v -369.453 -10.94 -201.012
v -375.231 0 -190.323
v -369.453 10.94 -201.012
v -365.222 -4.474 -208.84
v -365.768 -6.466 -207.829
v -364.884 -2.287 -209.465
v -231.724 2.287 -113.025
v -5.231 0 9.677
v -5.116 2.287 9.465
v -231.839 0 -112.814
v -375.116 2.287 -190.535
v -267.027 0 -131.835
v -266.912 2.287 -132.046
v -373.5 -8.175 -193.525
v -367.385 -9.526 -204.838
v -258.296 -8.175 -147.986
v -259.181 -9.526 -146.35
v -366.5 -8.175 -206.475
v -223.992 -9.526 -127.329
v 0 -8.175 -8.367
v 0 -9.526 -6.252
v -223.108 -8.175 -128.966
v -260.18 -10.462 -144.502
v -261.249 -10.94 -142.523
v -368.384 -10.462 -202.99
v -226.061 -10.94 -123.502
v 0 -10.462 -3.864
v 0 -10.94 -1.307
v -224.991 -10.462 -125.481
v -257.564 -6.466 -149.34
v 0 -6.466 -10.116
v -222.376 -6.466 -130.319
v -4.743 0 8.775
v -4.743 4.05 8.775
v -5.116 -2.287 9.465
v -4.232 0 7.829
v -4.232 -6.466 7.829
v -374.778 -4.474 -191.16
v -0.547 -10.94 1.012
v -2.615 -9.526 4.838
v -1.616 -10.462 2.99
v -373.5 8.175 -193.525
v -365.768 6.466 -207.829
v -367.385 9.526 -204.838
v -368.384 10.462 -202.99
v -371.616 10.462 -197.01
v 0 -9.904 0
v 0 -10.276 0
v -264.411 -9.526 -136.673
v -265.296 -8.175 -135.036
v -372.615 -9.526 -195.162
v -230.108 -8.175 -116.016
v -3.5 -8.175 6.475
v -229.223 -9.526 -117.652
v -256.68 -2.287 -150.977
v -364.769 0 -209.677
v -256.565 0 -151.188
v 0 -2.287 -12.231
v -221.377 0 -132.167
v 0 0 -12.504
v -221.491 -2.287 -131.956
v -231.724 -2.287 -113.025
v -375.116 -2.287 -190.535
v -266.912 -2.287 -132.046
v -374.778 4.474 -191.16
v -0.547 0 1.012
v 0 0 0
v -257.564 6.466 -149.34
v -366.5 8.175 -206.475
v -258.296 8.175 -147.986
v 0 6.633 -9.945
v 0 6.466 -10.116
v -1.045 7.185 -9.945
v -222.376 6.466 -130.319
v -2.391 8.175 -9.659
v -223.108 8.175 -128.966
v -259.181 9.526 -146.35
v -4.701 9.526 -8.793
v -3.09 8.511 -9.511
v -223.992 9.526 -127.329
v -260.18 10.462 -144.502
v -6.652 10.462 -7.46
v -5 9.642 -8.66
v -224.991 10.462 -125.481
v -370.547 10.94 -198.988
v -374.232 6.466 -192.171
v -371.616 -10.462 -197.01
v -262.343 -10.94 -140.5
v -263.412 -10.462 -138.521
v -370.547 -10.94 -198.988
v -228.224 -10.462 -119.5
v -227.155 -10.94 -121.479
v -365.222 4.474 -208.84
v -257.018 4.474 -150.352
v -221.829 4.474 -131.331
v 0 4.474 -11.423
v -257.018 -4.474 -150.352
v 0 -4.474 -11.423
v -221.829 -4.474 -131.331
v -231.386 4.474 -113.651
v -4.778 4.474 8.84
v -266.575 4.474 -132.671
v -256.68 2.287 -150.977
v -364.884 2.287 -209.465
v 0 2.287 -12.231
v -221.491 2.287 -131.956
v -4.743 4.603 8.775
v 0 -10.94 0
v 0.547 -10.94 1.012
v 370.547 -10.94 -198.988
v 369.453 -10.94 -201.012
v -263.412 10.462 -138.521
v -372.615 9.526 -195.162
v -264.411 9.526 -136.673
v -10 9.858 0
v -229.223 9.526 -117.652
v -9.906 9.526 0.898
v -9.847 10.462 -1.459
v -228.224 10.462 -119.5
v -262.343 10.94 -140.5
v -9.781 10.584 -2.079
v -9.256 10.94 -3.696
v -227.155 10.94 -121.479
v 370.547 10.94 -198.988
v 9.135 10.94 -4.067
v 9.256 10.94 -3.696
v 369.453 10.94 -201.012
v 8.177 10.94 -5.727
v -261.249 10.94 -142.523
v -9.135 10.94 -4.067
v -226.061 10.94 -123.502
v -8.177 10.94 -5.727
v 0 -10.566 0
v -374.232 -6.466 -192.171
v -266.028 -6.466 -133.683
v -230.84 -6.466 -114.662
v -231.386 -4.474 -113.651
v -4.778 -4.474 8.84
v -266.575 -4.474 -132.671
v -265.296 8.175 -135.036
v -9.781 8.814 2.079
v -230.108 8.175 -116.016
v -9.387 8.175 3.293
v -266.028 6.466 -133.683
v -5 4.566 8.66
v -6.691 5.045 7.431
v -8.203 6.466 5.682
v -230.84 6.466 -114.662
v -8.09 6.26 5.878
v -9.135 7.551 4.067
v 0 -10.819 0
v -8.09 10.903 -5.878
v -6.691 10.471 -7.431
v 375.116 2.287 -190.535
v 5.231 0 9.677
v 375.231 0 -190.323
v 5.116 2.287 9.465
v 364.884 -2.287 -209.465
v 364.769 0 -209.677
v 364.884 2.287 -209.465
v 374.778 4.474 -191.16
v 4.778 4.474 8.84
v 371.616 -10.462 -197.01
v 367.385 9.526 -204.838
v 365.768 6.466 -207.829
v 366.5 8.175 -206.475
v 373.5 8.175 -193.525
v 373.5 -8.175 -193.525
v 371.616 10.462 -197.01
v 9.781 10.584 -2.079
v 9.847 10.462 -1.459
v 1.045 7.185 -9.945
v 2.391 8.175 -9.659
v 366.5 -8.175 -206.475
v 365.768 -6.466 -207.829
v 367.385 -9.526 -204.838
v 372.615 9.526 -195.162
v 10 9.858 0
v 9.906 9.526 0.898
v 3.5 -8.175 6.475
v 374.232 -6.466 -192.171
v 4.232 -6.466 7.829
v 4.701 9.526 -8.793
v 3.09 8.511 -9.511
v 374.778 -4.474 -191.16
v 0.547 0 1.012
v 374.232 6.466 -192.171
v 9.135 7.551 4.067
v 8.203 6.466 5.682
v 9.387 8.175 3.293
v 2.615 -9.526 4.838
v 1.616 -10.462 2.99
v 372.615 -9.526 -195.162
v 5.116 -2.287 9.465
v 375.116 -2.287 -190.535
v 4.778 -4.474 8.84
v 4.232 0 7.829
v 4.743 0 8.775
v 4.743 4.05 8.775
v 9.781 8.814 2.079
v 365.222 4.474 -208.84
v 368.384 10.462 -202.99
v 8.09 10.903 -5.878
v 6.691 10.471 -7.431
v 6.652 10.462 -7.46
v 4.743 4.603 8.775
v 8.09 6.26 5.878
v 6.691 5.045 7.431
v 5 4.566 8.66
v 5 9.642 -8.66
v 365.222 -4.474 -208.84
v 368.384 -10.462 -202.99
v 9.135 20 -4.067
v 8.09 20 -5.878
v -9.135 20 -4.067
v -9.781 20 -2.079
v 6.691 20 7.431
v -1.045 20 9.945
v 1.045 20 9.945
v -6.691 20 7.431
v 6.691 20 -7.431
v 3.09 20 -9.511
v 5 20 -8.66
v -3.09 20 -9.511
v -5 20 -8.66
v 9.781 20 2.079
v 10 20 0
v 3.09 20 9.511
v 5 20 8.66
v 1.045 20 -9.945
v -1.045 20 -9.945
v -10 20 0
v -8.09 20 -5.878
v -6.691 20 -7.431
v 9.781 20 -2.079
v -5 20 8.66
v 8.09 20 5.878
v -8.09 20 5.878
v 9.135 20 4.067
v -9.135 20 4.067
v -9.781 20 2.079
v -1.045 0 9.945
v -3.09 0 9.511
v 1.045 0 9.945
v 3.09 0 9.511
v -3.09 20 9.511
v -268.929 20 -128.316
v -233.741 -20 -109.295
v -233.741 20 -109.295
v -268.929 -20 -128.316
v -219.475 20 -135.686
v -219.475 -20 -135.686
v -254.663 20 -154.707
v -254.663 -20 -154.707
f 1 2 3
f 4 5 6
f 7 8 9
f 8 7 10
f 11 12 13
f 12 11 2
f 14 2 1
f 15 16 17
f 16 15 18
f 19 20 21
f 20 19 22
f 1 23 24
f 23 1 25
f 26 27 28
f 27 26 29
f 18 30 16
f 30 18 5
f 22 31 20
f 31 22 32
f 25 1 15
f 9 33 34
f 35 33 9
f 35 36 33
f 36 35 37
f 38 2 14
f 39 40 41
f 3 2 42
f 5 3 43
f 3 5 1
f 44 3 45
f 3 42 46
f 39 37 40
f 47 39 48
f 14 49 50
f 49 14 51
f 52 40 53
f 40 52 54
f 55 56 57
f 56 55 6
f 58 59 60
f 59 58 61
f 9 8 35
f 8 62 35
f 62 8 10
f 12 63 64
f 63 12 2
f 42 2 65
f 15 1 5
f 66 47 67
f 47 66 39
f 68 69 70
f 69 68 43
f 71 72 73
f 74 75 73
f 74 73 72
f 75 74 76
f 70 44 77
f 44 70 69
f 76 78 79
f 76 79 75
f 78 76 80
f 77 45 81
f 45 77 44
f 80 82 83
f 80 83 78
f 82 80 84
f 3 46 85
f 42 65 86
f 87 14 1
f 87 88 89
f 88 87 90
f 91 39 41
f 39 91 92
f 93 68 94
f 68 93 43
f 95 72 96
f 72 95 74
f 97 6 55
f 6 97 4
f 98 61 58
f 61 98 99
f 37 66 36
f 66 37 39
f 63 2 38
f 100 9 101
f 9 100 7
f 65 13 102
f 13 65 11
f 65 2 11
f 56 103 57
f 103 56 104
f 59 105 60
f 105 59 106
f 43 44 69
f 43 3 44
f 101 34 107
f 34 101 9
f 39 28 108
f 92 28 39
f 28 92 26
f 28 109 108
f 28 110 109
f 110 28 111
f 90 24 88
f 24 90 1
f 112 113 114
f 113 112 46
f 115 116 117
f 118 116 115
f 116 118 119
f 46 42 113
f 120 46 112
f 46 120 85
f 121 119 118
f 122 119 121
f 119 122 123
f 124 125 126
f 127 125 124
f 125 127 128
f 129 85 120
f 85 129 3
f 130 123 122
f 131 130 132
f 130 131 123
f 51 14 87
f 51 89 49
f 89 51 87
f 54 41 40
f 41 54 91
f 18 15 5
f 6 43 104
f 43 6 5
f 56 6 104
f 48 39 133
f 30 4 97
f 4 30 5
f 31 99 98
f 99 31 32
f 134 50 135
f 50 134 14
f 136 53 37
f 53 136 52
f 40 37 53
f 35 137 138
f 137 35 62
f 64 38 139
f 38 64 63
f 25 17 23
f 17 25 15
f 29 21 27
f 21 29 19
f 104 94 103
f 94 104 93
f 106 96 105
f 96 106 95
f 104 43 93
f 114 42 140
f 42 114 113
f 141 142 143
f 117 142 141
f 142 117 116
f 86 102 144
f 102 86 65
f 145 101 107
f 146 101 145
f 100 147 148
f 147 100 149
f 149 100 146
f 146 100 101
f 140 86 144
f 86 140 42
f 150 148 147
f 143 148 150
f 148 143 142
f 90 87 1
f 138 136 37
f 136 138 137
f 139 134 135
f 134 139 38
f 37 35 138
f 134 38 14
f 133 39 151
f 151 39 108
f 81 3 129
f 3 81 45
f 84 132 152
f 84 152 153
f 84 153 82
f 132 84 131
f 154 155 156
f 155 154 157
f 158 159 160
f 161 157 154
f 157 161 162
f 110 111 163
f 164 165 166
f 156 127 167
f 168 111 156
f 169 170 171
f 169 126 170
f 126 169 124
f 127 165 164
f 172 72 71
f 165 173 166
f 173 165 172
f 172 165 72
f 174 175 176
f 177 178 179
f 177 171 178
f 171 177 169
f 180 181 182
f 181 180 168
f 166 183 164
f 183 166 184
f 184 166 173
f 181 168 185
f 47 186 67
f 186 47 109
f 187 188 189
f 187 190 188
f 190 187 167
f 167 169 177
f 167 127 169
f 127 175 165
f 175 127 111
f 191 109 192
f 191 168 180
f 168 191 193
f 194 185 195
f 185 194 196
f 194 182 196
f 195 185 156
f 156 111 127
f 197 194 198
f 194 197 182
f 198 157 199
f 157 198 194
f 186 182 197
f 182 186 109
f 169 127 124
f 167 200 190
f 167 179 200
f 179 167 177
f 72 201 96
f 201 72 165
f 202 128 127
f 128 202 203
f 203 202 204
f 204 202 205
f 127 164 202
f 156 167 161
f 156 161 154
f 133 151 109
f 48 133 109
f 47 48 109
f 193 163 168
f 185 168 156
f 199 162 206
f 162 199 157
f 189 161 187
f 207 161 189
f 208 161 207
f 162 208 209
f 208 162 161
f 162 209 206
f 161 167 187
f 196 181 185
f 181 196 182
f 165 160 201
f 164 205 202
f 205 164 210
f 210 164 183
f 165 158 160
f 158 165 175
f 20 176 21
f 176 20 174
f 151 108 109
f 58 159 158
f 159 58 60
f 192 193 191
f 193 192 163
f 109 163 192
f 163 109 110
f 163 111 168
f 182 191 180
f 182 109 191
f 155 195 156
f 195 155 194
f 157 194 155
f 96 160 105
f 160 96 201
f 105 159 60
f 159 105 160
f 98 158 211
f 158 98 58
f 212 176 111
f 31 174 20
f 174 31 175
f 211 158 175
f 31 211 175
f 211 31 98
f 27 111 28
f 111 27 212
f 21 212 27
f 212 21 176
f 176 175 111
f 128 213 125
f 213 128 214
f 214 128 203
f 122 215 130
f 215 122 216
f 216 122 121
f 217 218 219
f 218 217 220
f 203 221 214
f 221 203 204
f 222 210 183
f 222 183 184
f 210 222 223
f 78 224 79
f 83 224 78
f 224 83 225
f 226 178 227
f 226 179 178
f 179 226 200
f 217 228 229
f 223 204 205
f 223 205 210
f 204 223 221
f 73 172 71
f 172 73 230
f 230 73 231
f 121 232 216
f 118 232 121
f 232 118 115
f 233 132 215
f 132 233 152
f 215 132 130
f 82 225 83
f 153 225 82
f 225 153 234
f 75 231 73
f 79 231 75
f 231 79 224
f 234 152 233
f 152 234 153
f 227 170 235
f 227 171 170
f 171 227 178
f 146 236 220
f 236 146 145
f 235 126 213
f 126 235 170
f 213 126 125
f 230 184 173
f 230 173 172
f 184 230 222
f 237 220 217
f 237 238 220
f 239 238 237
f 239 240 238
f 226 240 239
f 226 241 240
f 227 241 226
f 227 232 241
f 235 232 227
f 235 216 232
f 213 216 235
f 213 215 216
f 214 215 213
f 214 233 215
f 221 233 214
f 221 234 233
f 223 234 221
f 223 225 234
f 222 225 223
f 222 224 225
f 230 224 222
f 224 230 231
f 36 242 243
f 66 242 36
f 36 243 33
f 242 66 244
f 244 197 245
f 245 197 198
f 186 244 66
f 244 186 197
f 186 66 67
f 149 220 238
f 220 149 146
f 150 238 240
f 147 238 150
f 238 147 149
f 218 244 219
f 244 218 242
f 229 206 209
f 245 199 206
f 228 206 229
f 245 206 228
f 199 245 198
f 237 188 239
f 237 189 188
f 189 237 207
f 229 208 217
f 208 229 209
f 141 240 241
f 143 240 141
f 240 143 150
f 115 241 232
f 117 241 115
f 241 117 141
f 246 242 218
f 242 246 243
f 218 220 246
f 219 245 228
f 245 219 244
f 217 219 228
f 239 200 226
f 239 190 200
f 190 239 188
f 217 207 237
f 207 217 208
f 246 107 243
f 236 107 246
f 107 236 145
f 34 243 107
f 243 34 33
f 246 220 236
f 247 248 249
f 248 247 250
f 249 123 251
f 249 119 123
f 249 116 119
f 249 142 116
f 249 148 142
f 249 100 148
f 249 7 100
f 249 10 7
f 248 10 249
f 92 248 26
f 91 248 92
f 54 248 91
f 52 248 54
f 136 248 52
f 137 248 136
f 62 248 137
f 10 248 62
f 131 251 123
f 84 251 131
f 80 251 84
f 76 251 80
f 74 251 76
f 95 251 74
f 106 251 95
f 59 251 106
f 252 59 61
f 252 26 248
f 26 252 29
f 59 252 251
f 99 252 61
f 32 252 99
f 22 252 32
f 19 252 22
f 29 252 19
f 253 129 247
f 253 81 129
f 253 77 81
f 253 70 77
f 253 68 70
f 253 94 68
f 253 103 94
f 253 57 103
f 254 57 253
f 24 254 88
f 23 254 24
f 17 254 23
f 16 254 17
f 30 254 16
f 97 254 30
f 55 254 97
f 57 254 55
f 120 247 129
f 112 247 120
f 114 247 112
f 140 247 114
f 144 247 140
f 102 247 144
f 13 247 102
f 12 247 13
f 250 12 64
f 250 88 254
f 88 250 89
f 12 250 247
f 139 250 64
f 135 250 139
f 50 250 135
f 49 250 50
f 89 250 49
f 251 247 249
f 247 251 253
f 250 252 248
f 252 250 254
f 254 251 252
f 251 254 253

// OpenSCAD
/**
  Virtual model for the physical handlebars that the user is holding.
*/
dx=740/2; // left-right half size of handlebars
dz=-200; // front-back total size of handlebars
dr=sqrt(dx*dx+dz*dz); // pivot-to-tip length
ang=atan2(dz,dx); // pivot angle of handlebars (relative to a straight bar)
echo(dr);
echo(ang);

// Size of handlebars
radius=11;

// Mark out pivoting axle
rotate([-90,0,0])
	cylinder(d=20,h=20); 
	
/* Rotate out to end of handlebars */
module handletip(side=-1) {
	scale([side,1,1])
		rotate([0,-ang,0])
			translate([dr,0,0])
				children();
}

// Main bars of handlebars
for (side=[-1,+1]) 
	handletip(side)
		rotate([0,-90,0])
			cylinder(r=radius,h=dr);

// Box that connects to VIVE controller
handletip(-1)
	translate([-143,0,0])
		cube([40,40,30],center=true);
